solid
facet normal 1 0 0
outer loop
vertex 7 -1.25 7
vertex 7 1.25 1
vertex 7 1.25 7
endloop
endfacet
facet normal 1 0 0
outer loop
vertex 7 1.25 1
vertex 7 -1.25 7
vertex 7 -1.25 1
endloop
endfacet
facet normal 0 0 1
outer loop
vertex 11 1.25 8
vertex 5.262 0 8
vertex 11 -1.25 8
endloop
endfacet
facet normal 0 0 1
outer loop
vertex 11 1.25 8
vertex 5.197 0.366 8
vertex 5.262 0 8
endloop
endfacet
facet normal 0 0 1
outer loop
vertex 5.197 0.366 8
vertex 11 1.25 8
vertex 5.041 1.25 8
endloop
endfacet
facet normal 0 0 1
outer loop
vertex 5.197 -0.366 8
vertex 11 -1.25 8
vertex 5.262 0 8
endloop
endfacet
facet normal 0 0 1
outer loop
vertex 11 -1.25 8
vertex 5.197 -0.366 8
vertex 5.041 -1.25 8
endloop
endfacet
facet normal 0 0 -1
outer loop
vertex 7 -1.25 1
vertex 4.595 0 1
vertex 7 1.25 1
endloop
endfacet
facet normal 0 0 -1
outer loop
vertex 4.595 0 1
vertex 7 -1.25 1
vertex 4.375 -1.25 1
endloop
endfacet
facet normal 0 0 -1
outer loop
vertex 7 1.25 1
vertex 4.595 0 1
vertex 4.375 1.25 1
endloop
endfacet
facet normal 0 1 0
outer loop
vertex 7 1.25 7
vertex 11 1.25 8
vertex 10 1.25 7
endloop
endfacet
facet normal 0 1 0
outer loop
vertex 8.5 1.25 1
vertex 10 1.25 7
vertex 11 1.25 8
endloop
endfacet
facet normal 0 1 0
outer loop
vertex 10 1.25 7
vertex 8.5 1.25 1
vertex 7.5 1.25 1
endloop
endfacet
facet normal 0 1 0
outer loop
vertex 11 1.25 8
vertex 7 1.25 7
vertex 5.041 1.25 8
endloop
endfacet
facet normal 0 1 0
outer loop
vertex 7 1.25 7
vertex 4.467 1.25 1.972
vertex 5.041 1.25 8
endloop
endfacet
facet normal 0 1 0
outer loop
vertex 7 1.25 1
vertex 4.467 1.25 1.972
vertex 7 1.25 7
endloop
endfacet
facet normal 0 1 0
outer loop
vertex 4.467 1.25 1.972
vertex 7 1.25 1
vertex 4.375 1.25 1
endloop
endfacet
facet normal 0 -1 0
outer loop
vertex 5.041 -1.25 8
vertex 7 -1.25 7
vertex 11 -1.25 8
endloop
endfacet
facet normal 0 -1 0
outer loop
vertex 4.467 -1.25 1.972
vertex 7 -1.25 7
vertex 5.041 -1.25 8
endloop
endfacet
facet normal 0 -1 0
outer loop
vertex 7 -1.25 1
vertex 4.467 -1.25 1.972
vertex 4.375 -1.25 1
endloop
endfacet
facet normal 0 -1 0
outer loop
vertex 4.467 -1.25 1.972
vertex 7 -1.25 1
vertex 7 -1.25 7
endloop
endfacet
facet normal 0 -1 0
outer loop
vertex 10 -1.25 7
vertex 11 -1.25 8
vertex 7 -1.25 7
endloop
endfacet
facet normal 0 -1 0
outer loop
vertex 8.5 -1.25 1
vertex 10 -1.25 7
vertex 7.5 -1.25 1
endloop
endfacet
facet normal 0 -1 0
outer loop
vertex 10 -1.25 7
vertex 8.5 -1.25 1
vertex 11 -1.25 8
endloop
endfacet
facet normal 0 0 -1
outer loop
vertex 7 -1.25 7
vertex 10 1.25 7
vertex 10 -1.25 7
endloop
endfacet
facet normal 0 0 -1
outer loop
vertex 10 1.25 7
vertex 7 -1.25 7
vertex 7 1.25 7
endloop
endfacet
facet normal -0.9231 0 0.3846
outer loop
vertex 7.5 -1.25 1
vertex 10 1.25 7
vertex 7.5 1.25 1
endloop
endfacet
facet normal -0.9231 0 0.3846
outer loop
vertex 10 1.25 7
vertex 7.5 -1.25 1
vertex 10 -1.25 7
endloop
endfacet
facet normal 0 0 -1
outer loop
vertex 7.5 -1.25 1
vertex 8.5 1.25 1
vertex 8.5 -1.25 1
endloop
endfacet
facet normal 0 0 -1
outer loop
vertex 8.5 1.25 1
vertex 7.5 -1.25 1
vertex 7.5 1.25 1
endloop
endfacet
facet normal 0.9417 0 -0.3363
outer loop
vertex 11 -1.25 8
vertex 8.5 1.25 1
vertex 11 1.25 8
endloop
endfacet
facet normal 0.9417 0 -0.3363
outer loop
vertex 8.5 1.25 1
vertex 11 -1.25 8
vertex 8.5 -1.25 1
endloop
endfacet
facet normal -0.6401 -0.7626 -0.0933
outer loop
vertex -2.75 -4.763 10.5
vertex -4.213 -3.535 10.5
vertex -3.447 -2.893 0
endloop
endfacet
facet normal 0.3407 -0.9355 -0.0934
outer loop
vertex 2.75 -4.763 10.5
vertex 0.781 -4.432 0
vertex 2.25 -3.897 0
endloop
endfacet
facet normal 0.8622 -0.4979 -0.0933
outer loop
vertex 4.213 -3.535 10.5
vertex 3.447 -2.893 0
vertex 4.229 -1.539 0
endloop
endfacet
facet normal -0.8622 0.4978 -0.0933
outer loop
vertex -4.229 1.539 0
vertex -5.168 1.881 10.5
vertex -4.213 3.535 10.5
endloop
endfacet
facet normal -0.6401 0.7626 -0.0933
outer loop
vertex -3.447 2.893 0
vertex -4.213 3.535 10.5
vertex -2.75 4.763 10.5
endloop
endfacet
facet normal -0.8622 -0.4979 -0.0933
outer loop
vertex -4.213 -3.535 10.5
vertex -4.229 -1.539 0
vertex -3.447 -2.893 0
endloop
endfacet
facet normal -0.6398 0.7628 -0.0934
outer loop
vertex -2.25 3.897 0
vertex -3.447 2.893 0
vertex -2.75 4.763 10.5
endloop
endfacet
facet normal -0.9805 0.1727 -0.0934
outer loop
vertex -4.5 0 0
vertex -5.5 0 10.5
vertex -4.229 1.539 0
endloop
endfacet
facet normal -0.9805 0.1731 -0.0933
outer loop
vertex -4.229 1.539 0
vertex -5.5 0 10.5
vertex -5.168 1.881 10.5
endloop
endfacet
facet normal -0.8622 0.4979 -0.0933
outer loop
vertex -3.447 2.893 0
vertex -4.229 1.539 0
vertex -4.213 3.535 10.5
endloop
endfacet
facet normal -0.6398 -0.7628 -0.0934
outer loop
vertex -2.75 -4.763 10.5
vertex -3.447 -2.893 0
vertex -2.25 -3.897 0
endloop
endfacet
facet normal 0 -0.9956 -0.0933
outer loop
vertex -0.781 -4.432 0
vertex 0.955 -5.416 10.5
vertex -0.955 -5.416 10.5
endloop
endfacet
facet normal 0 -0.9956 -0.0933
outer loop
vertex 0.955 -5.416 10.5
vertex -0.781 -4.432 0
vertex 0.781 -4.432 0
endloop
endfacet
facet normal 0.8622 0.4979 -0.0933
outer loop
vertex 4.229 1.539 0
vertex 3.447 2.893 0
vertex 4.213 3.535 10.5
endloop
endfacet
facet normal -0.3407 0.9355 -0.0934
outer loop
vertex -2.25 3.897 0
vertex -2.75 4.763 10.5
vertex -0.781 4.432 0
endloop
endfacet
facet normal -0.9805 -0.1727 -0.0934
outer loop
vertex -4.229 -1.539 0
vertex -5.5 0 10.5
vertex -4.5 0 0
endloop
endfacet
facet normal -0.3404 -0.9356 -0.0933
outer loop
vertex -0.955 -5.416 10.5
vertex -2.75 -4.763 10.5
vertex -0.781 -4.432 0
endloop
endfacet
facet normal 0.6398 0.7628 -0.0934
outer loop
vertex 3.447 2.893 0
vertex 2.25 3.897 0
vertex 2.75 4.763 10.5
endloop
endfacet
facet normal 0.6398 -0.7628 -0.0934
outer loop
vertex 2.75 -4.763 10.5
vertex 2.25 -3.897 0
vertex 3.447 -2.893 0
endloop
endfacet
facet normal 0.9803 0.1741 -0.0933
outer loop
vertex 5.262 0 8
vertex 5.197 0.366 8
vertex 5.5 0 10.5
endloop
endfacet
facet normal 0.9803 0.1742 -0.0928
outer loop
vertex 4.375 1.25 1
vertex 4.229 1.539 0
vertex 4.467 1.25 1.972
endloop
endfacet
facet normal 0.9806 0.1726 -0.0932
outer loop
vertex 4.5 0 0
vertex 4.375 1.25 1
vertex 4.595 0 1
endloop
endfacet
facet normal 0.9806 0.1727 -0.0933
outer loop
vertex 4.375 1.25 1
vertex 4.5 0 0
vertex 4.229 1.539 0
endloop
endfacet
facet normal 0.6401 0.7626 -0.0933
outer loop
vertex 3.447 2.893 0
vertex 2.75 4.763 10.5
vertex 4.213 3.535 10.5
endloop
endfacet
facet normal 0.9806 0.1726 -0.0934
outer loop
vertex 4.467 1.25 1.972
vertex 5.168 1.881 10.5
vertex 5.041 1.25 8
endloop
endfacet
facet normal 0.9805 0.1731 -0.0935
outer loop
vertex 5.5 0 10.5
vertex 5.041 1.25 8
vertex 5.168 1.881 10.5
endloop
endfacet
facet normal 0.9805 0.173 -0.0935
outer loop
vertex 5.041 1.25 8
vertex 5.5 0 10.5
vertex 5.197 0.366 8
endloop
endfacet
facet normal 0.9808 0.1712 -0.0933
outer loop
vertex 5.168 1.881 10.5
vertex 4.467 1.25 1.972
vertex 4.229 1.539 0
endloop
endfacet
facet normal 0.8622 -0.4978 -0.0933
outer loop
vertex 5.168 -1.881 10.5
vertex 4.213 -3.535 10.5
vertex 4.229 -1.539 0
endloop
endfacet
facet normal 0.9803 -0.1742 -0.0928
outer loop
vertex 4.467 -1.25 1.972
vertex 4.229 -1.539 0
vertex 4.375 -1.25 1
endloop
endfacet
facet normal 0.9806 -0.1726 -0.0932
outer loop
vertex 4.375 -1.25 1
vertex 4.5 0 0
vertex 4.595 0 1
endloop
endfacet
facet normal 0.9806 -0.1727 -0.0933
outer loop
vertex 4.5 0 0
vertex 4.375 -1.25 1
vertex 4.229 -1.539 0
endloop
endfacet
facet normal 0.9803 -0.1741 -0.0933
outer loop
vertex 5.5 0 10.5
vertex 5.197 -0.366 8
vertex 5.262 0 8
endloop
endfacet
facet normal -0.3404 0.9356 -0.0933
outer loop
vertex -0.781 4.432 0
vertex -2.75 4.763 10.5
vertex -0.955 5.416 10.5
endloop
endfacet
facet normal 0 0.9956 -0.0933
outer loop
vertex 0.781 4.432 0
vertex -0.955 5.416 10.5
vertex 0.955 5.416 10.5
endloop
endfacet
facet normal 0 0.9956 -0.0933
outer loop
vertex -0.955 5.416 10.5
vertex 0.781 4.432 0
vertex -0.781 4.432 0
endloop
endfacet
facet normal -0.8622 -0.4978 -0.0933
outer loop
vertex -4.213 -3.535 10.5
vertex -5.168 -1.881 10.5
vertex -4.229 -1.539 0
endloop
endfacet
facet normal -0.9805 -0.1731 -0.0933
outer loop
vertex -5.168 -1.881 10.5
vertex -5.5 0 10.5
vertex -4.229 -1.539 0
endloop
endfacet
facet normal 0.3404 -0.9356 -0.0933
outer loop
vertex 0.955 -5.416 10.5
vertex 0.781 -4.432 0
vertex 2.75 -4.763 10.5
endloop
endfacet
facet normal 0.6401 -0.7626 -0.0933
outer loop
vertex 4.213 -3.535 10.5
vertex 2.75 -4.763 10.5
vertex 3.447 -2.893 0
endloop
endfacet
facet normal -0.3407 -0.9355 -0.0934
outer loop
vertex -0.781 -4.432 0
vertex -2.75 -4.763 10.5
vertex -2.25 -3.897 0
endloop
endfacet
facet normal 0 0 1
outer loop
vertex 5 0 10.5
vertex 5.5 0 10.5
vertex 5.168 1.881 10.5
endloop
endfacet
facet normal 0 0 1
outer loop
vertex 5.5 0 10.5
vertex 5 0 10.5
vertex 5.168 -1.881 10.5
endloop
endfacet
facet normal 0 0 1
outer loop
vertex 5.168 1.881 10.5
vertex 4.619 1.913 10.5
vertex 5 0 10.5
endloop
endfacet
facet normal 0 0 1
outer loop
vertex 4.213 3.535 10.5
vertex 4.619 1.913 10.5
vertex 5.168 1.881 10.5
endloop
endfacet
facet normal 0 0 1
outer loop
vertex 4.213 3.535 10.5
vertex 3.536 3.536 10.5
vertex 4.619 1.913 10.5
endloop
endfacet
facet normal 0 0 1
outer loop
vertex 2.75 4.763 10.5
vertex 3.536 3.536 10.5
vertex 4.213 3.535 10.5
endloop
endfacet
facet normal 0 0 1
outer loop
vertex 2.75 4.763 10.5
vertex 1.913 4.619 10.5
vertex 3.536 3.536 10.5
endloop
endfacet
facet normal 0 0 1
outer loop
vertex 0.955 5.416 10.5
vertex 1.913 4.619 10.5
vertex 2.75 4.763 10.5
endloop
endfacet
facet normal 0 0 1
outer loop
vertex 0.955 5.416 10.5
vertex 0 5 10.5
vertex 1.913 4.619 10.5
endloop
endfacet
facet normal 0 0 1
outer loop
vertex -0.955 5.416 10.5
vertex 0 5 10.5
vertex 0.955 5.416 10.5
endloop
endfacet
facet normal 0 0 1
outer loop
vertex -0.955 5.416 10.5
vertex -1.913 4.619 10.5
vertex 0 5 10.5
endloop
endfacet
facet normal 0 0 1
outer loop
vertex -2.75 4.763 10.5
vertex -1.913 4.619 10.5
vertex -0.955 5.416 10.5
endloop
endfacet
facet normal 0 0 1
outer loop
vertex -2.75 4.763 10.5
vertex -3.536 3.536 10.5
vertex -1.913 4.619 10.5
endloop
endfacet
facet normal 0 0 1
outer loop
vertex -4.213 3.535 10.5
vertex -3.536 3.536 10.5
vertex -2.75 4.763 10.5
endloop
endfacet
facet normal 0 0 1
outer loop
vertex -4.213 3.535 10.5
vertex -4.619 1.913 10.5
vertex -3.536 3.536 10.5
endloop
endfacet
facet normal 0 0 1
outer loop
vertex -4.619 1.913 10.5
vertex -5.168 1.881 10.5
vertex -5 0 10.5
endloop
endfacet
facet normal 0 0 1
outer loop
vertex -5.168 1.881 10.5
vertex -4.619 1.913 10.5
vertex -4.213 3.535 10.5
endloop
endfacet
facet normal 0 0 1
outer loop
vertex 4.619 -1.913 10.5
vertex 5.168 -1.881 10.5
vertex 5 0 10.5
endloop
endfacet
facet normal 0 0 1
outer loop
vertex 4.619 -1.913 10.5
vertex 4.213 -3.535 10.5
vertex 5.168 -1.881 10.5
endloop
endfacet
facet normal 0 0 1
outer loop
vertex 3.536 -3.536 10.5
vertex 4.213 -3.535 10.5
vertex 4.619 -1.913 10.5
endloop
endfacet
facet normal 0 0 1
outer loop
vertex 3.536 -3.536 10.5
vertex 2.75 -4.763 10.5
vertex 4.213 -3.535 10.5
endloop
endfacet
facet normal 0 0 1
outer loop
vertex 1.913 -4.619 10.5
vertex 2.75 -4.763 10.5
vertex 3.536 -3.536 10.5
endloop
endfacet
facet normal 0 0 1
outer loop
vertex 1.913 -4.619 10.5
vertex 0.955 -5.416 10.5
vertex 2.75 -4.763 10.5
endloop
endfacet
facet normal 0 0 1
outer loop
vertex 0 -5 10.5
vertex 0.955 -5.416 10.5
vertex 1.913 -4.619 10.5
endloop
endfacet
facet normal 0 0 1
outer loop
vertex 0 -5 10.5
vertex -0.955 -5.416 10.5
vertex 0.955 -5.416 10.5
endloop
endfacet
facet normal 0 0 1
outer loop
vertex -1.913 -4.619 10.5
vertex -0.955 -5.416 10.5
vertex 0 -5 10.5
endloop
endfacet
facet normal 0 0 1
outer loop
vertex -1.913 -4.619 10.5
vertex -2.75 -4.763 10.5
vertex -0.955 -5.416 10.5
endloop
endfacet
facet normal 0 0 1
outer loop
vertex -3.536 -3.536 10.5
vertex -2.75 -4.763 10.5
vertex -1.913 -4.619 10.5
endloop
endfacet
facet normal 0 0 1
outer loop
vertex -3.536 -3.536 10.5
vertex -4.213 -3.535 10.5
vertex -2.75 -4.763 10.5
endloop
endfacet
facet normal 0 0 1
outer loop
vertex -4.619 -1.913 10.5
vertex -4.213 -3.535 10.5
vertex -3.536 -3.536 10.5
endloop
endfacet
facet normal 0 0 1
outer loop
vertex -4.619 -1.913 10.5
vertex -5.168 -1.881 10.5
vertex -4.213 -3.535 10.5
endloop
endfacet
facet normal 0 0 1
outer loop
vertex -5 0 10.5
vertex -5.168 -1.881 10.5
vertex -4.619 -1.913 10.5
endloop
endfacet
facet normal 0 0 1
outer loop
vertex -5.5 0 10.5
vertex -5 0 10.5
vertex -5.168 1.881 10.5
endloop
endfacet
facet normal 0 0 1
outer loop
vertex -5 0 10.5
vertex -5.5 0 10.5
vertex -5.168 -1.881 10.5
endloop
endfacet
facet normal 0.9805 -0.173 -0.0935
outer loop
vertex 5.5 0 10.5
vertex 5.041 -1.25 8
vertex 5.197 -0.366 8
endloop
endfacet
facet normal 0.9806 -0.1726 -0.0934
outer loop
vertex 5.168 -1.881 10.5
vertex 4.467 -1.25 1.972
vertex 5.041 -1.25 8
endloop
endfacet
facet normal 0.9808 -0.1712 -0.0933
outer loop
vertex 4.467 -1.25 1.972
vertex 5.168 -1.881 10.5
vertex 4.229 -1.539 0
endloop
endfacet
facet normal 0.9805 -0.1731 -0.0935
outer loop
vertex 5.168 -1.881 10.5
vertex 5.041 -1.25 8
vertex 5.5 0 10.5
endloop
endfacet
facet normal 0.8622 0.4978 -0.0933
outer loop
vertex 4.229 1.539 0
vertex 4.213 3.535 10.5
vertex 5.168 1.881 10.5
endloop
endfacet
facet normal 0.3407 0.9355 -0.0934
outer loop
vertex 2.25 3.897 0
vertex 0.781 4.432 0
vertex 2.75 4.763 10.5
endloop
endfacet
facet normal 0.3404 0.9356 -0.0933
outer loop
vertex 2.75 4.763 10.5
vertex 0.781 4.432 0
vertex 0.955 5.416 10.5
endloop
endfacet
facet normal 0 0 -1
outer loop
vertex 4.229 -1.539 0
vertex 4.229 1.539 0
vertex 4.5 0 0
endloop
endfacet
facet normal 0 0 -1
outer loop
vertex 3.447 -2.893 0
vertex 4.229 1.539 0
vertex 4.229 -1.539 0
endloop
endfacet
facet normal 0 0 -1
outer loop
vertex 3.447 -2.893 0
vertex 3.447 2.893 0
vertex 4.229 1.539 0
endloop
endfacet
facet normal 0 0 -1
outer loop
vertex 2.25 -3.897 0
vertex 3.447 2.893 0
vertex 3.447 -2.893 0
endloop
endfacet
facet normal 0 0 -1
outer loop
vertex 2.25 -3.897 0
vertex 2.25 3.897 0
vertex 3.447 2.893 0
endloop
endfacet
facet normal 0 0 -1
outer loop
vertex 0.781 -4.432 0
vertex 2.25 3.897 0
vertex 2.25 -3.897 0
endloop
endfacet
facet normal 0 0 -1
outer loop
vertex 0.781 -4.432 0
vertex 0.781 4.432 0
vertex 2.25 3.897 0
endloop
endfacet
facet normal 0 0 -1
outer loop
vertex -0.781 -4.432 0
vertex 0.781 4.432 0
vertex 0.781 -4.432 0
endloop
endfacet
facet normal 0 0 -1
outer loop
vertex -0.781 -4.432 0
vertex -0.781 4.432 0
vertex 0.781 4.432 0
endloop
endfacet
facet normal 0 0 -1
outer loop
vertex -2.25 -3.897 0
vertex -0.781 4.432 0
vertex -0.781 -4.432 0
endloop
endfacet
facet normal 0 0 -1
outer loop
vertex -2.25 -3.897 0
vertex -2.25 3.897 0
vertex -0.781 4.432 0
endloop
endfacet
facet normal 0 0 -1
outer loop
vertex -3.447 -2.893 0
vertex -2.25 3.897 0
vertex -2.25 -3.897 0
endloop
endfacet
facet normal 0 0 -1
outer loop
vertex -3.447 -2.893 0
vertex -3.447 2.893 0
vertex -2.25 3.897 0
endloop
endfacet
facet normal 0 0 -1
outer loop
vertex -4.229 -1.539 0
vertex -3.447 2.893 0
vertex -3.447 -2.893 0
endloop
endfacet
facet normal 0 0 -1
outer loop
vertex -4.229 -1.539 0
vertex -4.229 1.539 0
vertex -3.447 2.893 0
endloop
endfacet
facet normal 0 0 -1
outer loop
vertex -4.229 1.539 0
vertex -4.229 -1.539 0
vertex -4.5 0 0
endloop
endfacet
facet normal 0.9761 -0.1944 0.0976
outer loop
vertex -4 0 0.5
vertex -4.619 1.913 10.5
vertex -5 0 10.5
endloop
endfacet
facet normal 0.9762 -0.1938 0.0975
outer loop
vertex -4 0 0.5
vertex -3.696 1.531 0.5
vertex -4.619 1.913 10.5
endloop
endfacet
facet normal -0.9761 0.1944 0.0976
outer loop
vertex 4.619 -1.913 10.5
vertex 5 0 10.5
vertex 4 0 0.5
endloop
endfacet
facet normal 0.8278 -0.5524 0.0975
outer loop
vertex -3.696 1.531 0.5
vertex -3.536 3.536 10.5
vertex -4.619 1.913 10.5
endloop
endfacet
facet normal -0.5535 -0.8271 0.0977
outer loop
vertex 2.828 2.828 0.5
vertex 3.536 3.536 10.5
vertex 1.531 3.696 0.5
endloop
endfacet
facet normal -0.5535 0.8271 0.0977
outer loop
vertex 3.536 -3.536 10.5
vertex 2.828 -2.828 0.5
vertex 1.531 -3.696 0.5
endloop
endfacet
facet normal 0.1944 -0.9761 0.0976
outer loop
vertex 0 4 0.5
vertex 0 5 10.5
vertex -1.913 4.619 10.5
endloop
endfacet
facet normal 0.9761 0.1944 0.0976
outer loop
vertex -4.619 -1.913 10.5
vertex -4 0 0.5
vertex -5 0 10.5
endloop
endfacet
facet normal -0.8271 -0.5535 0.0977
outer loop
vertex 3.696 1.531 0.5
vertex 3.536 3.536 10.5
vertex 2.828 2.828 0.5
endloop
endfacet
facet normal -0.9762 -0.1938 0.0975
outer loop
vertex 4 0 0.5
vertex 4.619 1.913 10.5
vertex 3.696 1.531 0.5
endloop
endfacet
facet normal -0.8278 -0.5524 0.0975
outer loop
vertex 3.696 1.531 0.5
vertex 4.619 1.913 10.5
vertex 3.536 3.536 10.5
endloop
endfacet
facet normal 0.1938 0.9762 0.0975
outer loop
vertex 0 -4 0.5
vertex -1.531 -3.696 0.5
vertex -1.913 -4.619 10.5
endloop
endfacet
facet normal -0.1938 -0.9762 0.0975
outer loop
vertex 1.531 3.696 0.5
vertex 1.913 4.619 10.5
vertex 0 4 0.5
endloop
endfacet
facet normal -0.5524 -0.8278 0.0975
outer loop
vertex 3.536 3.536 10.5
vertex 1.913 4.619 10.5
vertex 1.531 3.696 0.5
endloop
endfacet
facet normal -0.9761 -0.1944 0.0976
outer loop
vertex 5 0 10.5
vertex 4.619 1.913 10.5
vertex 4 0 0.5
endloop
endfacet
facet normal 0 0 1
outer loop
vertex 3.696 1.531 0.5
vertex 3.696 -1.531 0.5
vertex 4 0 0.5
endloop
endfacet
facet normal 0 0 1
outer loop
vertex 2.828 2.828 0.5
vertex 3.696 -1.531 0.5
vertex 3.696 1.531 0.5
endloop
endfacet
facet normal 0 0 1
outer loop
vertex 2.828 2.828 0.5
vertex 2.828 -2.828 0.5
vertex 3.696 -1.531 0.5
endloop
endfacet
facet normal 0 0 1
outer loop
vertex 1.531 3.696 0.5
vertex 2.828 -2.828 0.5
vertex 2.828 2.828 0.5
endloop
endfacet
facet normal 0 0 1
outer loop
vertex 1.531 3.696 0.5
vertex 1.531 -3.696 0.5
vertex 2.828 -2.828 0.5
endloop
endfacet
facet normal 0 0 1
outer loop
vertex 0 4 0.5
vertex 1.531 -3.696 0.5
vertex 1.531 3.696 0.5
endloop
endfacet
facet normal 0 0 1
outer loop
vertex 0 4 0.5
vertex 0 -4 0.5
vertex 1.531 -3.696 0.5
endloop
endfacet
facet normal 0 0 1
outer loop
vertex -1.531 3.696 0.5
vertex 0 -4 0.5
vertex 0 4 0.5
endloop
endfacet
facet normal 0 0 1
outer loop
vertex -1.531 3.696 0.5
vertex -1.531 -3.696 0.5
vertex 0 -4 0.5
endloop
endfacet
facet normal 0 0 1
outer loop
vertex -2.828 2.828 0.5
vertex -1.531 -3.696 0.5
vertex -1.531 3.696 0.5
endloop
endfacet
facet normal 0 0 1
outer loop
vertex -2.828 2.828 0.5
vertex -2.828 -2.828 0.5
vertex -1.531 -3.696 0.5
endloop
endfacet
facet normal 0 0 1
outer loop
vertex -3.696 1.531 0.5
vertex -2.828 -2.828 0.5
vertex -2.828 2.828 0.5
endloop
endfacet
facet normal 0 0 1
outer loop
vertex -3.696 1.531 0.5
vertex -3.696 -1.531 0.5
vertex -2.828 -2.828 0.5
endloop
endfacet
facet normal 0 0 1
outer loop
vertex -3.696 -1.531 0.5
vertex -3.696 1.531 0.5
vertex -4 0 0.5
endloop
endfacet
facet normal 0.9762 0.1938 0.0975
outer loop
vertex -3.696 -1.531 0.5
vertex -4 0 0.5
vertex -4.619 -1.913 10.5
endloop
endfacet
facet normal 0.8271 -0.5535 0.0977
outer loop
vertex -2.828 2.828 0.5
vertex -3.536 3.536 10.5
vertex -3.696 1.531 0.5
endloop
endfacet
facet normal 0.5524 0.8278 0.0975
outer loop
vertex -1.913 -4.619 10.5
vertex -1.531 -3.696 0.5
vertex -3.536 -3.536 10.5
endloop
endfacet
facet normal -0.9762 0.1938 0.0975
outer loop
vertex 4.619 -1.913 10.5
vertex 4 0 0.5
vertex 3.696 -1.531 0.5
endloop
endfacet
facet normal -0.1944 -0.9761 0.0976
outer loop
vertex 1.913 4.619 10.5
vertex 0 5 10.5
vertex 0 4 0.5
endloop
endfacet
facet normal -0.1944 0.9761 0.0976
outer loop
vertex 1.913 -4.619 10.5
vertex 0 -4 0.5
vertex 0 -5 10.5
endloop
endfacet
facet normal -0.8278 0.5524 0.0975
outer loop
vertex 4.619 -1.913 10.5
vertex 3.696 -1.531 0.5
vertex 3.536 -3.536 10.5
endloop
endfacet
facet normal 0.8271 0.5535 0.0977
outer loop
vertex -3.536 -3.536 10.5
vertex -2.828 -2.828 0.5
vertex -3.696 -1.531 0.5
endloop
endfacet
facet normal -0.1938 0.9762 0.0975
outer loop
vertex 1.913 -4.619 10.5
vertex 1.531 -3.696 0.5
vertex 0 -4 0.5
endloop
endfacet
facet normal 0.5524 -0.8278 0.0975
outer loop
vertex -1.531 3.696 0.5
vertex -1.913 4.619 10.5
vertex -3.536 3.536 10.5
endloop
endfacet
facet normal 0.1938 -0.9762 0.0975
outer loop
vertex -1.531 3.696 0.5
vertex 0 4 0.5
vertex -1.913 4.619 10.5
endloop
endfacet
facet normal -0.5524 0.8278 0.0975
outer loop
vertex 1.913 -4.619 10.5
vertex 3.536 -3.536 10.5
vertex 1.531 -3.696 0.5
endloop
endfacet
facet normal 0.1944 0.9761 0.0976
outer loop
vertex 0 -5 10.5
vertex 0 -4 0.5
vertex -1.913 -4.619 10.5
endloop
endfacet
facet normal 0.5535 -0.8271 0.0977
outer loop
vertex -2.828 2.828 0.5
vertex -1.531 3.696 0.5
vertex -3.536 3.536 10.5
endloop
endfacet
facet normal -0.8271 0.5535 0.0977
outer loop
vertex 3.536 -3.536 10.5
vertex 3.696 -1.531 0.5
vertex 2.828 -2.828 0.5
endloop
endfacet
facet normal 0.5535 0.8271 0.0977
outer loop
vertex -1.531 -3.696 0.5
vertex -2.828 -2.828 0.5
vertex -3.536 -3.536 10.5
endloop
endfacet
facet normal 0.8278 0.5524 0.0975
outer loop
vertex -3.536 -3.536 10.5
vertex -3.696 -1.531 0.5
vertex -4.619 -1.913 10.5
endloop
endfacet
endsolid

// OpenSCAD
// ペットボトルとかを収めるためのケースを作る
// カップ
// - 底面の直径は8cm
// - 上面での直径は10cm
// - 深さは10cm
// - 厚さが0.5cm
// 持ち手部分
// - 厚さ1cm

module cup_base(buttom_r, top_r, height, thick) {
  polygon([
    [0, 0],
    [buttom_r / 2 + thick, 0],
    [top_r / 2 + thick, height + thick],
    [0, height + thick]
  ]);
}

module cup_diff(buttom_r, top_r, height, thick) {
  polygon([
    [0, thick],
    [buttom_r / 2, thick],
    [top_r / 2 , height + thick],
    [top_r / 2 , height + thick + 0.1],
    [0, height + thick + 0.1],
    [0, height + thick]
  ]);
}

module handle(
  cup_top_r,
  cup_thick,
  handle_height,
  handle_width,
  handle_base_length,
  handle_thick,
  handle_start_len,
  handle_end_len,
  handle_end_height
) {

  union() {
    translate ([0, - handle_width / 2, handle_end_height]) {
      cube([handle_base_length, handle_width, handle_height - handle_end_height]);
    };

    translate ([handle_base_length, handle_width / 2, handle_height]) {
      rotate([90, 0, 0]) {
        linear_extrude(height = handle_width) {
          polygon([
            [0, 0],
            [handle_start_len + handle_thick, 0],
            [handle_end_len + handle_thick, -(handle_height - handle_end_height)],
            [handle_end_len, -(handle_height - handle_end_height)],
            [handle_start_len, -handle_thick],
            [0, -handle_thick]
          ]);
        }
      }
    }
  }
}

// カップの底面の直径
cup_buttom_r = 8;
// カップの上面の直径
cup_top_r = 10;
// カップの高さ
cup_height = 10;
// カップの厚さ
cup_thick = 0.5;

// 持ち手がつく高さ
handle_height = 8;
// 持ち手の太さ
handle_width = 2.5;
// 持ち手がつくブロックの長さ
handle_base_length = 7;
// 持ち手の厚さ
handle_thick = 1;
// 持ち手の保持部分の開始位置
handle_start_len = 3;
// 持ち手の保持部分の終端位置
handle_end_len = 0.5;
// 持ち手の保持部分の終端高さ
handle_end_height = 1;

difference() {

  // カップと持ち手を結合させる
  union() {
    color("red") {
      rotate_extrude() {
        cup_base(cup_buttom_r, cup_top_r, cup_height, cup_thick);
      };
    };
    handle(
      cup_top_r,
      cup_thick,
      handle_height,
      handle_width,
      handle_base_length,
      handle_thick,
      handle_start_len,
      handle_end_len,
      handle_end_height
    );
  };

  // ペットボトルが収まるスペースを抜く
  rotate_extrude() {
    cup_diff(cup_buttom_r, cup_top_r, cup_height, cup_thick);
  };

}
